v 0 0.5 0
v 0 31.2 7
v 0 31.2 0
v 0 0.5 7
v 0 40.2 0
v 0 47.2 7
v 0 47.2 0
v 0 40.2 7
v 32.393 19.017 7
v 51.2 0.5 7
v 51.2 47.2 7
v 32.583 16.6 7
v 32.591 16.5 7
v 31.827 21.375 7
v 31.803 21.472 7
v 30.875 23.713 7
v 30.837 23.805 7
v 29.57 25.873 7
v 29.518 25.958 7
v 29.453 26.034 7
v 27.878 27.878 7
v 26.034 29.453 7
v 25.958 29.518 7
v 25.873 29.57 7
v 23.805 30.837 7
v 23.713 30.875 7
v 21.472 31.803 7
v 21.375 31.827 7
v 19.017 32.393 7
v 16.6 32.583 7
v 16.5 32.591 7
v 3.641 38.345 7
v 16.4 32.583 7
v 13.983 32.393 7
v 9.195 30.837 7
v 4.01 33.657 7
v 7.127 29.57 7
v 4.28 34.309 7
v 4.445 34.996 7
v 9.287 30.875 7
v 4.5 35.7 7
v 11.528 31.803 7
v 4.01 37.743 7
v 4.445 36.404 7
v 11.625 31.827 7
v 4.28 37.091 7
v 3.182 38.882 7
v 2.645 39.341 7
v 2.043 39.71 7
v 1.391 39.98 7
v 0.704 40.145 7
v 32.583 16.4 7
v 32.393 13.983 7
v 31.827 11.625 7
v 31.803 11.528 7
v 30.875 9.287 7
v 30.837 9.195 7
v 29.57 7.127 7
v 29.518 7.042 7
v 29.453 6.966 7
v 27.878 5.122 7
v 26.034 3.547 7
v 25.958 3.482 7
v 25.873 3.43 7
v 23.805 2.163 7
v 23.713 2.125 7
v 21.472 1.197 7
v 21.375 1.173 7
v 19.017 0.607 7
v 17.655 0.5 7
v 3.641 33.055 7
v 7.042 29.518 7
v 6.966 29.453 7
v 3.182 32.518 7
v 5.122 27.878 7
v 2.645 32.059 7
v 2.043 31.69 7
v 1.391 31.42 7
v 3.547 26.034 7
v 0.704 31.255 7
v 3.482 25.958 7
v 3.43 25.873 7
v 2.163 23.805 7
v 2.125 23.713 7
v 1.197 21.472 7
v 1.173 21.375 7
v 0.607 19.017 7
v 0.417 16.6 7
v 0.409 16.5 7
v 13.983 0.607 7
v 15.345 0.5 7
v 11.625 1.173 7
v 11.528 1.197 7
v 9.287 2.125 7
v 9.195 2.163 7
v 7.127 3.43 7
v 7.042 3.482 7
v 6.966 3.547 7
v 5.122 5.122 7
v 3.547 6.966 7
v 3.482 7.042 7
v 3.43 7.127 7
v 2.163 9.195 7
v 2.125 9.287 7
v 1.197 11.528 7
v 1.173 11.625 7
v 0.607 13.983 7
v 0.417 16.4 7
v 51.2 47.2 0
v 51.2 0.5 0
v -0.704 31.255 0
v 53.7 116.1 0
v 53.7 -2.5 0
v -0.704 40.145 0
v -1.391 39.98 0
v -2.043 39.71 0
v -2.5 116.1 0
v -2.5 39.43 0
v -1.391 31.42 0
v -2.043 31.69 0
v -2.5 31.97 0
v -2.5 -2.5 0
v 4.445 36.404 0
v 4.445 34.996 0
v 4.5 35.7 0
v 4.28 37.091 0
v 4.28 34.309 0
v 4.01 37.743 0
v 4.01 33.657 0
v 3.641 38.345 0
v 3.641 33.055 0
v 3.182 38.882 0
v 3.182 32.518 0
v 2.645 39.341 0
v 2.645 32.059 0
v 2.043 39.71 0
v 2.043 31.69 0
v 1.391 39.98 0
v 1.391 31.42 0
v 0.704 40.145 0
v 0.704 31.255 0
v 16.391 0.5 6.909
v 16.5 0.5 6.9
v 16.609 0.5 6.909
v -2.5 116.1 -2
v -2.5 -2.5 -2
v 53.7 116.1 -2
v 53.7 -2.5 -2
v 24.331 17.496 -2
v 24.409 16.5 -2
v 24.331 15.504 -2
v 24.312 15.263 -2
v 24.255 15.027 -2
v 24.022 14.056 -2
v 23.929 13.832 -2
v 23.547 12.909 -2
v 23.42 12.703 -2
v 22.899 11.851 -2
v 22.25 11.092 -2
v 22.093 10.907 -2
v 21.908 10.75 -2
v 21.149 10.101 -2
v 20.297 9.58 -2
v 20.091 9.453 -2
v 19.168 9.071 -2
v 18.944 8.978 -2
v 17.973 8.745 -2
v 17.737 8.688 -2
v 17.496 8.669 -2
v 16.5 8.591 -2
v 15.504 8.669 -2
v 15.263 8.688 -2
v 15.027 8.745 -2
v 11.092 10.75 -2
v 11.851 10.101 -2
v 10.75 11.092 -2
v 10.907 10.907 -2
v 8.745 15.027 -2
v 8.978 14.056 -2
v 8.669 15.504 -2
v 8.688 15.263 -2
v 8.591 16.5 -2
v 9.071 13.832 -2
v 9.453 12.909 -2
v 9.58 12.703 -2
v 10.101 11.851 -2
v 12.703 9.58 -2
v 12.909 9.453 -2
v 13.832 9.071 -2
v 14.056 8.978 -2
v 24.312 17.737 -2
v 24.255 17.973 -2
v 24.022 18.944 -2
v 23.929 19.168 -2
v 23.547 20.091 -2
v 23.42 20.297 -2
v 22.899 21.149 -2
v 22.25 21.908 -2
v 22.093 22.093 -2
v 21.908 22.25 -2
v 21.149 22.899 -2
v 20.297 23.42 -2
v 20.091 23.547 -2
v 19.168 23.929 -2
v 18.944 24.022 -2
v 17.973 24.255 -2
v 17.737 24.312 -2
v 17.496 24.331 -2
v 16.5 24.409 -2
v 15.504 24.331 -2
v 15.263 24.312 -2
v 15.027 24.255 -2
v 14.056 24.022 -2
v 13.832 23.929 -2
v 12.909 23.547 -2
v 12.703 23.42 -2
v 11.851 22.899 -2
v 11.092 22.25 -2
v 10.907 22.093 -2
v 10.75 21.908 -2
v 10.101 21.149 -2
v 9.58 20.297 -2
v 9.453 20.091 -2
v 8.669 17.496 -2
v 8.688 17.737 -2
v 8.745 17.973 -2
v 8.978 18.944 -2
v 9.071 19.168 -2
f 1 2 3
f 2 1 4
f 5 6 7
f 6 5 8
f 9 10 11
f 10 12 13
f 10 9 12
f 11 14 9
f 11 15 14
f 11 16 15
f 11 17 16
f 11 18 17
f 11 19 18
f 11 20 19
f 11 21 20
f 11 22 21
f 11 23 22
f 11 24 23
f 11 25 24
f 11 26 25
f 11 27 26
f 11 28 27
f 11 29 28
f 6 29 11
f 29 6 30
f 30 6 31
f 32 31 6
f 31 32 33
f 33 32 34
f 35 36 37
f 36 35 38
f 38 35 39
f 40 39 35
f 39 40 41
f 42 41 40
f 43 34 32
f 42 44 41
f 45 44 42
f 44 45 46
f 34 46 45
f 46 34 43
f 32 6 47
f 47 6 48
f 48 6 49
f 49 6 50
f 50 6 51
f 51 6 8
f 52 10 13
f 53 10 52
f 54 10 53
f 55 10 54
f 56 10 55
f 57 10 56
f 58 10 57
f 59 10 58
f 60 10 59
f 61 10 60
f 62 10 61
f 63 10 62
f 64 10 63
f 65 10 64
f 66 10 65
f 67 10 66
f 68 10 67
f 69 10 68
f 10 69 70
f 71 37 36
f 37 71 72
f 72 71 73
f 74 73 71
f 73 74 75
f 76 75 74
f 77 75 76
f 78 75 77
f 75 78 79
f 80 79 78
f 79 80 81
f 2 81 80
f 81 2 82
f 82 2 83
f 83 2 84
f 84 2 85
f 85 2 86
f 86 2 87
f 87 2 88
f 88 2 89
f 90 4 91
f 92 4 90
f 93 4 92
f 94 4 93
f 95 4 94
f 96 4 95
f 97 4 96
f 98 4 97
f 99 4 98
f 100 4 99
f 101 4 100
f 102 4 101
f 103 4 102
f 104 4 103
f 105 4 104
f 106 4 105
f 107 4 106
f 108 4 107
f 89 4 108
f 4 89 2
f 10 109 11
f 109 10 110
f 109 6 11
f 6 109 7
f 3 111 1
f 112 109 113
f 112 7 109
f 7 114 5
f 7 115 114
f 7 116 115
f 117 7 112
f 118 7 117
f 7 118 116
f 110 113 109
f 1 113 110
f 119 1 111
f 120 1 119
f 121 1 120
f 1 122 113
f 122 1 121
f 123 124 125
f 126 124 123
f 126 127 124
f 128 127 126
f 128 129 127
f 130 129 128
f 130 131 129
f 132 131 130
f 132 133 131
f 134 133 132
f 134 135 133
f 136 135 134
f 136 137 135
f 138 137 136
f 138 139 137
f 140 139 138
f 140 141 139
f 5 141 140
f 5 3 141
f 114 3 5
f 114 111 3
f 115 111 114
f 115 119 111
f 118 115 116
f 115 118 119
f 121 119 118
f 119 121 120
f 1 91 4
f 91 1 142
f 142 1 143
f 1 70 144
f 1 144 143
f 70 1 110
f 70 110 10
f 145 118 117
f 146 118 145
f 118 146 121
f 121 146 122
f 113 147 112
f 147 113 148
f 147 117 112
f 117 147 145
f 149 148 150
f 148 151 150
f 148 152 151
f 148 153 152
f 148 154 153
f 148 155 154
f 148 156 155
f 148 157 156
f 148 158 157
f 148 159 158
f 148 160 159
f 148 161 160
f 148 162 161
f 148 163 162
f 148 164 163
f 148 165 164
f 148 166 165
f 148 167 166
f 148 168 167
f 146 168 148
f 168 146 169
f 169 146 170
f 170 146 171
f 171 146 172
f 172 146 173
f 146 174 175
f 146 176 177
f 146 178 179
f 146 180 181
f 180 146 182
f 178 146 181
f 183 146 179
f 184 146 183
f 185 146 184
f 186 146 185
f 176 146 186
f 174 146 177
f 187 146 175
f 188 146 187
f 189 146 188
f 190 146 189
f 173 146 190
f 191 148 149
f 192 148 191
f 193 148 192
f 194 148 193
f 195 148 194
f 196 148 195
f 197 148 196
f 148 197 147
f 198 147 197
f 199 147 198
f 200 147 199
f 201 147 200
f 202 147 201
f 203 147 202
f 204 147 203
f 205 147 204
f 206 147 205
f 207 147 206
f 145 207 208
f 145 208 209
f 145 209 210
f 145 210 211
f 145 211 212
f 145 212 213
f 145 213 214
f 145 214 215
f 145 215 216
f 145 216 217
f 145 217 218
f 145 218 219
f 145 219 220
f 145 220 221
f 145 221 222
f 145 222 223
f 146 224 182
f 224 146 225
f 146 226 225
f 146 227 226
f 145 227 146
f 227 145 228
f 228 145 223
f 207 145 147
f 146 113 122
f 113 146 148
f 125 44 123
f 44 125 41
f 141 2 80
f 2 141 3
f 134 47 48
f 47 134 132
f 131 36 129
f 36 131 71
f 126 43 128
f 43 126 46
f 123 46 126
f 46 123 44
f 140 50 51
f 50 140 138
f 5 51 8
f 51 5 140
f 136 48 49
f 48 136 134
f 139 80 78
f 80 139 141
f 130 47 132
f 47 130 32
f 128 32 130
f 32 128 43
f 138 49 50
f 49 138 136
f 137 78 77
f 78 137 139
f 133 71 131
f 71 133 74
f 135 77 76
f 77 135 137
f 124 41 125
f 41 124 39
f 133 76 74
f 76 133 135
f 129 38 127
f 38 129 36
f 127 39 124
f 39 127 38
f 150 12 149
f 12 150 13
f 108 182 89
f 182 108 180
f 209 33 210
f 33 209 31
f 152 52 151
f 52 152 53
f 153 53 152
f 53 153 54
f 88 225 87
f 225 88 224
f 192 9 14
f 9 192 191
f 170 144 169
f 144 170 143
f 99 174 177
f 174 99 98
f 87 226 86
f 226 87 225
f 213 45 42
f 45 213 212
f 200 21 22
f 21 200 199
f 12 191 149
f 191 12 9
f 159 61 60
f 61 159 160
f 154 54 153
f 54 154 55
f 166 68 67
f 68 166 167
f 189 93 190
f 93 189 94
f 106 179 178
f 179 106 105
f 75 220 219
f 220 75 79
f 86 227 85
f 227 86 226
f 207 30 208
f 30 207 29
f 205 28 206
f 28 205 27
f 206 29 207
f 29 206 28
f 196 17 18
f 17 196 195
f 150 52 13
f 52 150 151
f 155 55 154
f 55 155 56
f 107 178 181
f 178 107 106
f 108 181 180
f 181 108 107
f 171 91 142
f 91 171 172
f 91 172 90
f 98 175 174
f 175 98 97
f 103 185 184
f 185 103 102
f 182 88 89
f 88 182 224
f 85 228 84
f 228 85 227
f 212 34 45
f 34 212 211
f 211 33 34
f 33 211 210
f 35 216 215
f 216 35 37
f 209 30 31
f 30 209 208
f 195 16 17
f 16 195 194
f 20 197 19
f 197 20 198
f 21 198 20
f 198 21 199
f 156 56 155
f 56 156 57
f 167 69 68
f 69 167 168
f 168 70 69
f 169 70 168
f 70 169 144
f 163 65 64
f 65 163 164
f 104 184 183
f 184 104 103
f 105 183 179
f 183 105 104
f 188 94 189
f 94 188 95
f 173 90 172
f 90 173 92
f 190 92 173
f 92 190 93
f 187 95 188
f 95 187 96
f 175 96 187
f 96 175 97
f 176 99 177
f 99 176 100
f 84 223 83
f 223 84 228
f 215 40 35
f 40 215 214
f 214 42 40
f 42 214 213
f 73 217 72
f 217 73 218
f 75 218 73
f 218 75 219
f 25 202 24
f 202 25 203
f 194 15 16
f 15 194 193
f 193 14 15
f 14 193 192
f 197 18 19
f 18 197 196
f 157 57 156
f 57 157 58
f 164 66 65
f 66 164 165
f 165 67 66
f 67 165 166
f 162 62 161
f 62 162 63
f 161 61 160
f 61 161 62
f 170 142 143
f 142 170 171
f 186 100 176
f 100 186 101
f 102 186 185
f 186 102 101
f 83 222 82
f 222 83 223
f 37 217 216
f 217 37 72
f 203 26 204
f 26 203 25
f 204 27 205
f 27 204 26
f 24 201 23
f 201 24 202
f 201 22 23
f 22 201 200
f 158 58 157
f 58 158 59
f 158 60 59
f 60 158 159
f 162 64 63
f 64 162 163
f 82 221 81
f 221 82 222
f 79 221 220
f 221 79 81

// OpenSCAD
$fn=40;

difference() {
    union() {
        // Internal Plate
        translate([0, 0.5, 0]) {
            cube([51.2, 46.7, 7]);
        }
        
        // Support plate
        translate([-2.5, -2.5, -2]) {
            cube([56.2, 118.6, 2]);
        }
    }
    
    // Cutout
    translate([1, 1, 0]) {
        // cube([49, 33, 10]);
    }

    // Pin Cutout
    translate([0, 35.7, 0]) {
        cylinder(r=4.5, h=10);
    }
    
    // Hole
    translate([16.5, 33/2, -3]) {
        cylinder(r1=7, r2=17, h=11);
    }
}
